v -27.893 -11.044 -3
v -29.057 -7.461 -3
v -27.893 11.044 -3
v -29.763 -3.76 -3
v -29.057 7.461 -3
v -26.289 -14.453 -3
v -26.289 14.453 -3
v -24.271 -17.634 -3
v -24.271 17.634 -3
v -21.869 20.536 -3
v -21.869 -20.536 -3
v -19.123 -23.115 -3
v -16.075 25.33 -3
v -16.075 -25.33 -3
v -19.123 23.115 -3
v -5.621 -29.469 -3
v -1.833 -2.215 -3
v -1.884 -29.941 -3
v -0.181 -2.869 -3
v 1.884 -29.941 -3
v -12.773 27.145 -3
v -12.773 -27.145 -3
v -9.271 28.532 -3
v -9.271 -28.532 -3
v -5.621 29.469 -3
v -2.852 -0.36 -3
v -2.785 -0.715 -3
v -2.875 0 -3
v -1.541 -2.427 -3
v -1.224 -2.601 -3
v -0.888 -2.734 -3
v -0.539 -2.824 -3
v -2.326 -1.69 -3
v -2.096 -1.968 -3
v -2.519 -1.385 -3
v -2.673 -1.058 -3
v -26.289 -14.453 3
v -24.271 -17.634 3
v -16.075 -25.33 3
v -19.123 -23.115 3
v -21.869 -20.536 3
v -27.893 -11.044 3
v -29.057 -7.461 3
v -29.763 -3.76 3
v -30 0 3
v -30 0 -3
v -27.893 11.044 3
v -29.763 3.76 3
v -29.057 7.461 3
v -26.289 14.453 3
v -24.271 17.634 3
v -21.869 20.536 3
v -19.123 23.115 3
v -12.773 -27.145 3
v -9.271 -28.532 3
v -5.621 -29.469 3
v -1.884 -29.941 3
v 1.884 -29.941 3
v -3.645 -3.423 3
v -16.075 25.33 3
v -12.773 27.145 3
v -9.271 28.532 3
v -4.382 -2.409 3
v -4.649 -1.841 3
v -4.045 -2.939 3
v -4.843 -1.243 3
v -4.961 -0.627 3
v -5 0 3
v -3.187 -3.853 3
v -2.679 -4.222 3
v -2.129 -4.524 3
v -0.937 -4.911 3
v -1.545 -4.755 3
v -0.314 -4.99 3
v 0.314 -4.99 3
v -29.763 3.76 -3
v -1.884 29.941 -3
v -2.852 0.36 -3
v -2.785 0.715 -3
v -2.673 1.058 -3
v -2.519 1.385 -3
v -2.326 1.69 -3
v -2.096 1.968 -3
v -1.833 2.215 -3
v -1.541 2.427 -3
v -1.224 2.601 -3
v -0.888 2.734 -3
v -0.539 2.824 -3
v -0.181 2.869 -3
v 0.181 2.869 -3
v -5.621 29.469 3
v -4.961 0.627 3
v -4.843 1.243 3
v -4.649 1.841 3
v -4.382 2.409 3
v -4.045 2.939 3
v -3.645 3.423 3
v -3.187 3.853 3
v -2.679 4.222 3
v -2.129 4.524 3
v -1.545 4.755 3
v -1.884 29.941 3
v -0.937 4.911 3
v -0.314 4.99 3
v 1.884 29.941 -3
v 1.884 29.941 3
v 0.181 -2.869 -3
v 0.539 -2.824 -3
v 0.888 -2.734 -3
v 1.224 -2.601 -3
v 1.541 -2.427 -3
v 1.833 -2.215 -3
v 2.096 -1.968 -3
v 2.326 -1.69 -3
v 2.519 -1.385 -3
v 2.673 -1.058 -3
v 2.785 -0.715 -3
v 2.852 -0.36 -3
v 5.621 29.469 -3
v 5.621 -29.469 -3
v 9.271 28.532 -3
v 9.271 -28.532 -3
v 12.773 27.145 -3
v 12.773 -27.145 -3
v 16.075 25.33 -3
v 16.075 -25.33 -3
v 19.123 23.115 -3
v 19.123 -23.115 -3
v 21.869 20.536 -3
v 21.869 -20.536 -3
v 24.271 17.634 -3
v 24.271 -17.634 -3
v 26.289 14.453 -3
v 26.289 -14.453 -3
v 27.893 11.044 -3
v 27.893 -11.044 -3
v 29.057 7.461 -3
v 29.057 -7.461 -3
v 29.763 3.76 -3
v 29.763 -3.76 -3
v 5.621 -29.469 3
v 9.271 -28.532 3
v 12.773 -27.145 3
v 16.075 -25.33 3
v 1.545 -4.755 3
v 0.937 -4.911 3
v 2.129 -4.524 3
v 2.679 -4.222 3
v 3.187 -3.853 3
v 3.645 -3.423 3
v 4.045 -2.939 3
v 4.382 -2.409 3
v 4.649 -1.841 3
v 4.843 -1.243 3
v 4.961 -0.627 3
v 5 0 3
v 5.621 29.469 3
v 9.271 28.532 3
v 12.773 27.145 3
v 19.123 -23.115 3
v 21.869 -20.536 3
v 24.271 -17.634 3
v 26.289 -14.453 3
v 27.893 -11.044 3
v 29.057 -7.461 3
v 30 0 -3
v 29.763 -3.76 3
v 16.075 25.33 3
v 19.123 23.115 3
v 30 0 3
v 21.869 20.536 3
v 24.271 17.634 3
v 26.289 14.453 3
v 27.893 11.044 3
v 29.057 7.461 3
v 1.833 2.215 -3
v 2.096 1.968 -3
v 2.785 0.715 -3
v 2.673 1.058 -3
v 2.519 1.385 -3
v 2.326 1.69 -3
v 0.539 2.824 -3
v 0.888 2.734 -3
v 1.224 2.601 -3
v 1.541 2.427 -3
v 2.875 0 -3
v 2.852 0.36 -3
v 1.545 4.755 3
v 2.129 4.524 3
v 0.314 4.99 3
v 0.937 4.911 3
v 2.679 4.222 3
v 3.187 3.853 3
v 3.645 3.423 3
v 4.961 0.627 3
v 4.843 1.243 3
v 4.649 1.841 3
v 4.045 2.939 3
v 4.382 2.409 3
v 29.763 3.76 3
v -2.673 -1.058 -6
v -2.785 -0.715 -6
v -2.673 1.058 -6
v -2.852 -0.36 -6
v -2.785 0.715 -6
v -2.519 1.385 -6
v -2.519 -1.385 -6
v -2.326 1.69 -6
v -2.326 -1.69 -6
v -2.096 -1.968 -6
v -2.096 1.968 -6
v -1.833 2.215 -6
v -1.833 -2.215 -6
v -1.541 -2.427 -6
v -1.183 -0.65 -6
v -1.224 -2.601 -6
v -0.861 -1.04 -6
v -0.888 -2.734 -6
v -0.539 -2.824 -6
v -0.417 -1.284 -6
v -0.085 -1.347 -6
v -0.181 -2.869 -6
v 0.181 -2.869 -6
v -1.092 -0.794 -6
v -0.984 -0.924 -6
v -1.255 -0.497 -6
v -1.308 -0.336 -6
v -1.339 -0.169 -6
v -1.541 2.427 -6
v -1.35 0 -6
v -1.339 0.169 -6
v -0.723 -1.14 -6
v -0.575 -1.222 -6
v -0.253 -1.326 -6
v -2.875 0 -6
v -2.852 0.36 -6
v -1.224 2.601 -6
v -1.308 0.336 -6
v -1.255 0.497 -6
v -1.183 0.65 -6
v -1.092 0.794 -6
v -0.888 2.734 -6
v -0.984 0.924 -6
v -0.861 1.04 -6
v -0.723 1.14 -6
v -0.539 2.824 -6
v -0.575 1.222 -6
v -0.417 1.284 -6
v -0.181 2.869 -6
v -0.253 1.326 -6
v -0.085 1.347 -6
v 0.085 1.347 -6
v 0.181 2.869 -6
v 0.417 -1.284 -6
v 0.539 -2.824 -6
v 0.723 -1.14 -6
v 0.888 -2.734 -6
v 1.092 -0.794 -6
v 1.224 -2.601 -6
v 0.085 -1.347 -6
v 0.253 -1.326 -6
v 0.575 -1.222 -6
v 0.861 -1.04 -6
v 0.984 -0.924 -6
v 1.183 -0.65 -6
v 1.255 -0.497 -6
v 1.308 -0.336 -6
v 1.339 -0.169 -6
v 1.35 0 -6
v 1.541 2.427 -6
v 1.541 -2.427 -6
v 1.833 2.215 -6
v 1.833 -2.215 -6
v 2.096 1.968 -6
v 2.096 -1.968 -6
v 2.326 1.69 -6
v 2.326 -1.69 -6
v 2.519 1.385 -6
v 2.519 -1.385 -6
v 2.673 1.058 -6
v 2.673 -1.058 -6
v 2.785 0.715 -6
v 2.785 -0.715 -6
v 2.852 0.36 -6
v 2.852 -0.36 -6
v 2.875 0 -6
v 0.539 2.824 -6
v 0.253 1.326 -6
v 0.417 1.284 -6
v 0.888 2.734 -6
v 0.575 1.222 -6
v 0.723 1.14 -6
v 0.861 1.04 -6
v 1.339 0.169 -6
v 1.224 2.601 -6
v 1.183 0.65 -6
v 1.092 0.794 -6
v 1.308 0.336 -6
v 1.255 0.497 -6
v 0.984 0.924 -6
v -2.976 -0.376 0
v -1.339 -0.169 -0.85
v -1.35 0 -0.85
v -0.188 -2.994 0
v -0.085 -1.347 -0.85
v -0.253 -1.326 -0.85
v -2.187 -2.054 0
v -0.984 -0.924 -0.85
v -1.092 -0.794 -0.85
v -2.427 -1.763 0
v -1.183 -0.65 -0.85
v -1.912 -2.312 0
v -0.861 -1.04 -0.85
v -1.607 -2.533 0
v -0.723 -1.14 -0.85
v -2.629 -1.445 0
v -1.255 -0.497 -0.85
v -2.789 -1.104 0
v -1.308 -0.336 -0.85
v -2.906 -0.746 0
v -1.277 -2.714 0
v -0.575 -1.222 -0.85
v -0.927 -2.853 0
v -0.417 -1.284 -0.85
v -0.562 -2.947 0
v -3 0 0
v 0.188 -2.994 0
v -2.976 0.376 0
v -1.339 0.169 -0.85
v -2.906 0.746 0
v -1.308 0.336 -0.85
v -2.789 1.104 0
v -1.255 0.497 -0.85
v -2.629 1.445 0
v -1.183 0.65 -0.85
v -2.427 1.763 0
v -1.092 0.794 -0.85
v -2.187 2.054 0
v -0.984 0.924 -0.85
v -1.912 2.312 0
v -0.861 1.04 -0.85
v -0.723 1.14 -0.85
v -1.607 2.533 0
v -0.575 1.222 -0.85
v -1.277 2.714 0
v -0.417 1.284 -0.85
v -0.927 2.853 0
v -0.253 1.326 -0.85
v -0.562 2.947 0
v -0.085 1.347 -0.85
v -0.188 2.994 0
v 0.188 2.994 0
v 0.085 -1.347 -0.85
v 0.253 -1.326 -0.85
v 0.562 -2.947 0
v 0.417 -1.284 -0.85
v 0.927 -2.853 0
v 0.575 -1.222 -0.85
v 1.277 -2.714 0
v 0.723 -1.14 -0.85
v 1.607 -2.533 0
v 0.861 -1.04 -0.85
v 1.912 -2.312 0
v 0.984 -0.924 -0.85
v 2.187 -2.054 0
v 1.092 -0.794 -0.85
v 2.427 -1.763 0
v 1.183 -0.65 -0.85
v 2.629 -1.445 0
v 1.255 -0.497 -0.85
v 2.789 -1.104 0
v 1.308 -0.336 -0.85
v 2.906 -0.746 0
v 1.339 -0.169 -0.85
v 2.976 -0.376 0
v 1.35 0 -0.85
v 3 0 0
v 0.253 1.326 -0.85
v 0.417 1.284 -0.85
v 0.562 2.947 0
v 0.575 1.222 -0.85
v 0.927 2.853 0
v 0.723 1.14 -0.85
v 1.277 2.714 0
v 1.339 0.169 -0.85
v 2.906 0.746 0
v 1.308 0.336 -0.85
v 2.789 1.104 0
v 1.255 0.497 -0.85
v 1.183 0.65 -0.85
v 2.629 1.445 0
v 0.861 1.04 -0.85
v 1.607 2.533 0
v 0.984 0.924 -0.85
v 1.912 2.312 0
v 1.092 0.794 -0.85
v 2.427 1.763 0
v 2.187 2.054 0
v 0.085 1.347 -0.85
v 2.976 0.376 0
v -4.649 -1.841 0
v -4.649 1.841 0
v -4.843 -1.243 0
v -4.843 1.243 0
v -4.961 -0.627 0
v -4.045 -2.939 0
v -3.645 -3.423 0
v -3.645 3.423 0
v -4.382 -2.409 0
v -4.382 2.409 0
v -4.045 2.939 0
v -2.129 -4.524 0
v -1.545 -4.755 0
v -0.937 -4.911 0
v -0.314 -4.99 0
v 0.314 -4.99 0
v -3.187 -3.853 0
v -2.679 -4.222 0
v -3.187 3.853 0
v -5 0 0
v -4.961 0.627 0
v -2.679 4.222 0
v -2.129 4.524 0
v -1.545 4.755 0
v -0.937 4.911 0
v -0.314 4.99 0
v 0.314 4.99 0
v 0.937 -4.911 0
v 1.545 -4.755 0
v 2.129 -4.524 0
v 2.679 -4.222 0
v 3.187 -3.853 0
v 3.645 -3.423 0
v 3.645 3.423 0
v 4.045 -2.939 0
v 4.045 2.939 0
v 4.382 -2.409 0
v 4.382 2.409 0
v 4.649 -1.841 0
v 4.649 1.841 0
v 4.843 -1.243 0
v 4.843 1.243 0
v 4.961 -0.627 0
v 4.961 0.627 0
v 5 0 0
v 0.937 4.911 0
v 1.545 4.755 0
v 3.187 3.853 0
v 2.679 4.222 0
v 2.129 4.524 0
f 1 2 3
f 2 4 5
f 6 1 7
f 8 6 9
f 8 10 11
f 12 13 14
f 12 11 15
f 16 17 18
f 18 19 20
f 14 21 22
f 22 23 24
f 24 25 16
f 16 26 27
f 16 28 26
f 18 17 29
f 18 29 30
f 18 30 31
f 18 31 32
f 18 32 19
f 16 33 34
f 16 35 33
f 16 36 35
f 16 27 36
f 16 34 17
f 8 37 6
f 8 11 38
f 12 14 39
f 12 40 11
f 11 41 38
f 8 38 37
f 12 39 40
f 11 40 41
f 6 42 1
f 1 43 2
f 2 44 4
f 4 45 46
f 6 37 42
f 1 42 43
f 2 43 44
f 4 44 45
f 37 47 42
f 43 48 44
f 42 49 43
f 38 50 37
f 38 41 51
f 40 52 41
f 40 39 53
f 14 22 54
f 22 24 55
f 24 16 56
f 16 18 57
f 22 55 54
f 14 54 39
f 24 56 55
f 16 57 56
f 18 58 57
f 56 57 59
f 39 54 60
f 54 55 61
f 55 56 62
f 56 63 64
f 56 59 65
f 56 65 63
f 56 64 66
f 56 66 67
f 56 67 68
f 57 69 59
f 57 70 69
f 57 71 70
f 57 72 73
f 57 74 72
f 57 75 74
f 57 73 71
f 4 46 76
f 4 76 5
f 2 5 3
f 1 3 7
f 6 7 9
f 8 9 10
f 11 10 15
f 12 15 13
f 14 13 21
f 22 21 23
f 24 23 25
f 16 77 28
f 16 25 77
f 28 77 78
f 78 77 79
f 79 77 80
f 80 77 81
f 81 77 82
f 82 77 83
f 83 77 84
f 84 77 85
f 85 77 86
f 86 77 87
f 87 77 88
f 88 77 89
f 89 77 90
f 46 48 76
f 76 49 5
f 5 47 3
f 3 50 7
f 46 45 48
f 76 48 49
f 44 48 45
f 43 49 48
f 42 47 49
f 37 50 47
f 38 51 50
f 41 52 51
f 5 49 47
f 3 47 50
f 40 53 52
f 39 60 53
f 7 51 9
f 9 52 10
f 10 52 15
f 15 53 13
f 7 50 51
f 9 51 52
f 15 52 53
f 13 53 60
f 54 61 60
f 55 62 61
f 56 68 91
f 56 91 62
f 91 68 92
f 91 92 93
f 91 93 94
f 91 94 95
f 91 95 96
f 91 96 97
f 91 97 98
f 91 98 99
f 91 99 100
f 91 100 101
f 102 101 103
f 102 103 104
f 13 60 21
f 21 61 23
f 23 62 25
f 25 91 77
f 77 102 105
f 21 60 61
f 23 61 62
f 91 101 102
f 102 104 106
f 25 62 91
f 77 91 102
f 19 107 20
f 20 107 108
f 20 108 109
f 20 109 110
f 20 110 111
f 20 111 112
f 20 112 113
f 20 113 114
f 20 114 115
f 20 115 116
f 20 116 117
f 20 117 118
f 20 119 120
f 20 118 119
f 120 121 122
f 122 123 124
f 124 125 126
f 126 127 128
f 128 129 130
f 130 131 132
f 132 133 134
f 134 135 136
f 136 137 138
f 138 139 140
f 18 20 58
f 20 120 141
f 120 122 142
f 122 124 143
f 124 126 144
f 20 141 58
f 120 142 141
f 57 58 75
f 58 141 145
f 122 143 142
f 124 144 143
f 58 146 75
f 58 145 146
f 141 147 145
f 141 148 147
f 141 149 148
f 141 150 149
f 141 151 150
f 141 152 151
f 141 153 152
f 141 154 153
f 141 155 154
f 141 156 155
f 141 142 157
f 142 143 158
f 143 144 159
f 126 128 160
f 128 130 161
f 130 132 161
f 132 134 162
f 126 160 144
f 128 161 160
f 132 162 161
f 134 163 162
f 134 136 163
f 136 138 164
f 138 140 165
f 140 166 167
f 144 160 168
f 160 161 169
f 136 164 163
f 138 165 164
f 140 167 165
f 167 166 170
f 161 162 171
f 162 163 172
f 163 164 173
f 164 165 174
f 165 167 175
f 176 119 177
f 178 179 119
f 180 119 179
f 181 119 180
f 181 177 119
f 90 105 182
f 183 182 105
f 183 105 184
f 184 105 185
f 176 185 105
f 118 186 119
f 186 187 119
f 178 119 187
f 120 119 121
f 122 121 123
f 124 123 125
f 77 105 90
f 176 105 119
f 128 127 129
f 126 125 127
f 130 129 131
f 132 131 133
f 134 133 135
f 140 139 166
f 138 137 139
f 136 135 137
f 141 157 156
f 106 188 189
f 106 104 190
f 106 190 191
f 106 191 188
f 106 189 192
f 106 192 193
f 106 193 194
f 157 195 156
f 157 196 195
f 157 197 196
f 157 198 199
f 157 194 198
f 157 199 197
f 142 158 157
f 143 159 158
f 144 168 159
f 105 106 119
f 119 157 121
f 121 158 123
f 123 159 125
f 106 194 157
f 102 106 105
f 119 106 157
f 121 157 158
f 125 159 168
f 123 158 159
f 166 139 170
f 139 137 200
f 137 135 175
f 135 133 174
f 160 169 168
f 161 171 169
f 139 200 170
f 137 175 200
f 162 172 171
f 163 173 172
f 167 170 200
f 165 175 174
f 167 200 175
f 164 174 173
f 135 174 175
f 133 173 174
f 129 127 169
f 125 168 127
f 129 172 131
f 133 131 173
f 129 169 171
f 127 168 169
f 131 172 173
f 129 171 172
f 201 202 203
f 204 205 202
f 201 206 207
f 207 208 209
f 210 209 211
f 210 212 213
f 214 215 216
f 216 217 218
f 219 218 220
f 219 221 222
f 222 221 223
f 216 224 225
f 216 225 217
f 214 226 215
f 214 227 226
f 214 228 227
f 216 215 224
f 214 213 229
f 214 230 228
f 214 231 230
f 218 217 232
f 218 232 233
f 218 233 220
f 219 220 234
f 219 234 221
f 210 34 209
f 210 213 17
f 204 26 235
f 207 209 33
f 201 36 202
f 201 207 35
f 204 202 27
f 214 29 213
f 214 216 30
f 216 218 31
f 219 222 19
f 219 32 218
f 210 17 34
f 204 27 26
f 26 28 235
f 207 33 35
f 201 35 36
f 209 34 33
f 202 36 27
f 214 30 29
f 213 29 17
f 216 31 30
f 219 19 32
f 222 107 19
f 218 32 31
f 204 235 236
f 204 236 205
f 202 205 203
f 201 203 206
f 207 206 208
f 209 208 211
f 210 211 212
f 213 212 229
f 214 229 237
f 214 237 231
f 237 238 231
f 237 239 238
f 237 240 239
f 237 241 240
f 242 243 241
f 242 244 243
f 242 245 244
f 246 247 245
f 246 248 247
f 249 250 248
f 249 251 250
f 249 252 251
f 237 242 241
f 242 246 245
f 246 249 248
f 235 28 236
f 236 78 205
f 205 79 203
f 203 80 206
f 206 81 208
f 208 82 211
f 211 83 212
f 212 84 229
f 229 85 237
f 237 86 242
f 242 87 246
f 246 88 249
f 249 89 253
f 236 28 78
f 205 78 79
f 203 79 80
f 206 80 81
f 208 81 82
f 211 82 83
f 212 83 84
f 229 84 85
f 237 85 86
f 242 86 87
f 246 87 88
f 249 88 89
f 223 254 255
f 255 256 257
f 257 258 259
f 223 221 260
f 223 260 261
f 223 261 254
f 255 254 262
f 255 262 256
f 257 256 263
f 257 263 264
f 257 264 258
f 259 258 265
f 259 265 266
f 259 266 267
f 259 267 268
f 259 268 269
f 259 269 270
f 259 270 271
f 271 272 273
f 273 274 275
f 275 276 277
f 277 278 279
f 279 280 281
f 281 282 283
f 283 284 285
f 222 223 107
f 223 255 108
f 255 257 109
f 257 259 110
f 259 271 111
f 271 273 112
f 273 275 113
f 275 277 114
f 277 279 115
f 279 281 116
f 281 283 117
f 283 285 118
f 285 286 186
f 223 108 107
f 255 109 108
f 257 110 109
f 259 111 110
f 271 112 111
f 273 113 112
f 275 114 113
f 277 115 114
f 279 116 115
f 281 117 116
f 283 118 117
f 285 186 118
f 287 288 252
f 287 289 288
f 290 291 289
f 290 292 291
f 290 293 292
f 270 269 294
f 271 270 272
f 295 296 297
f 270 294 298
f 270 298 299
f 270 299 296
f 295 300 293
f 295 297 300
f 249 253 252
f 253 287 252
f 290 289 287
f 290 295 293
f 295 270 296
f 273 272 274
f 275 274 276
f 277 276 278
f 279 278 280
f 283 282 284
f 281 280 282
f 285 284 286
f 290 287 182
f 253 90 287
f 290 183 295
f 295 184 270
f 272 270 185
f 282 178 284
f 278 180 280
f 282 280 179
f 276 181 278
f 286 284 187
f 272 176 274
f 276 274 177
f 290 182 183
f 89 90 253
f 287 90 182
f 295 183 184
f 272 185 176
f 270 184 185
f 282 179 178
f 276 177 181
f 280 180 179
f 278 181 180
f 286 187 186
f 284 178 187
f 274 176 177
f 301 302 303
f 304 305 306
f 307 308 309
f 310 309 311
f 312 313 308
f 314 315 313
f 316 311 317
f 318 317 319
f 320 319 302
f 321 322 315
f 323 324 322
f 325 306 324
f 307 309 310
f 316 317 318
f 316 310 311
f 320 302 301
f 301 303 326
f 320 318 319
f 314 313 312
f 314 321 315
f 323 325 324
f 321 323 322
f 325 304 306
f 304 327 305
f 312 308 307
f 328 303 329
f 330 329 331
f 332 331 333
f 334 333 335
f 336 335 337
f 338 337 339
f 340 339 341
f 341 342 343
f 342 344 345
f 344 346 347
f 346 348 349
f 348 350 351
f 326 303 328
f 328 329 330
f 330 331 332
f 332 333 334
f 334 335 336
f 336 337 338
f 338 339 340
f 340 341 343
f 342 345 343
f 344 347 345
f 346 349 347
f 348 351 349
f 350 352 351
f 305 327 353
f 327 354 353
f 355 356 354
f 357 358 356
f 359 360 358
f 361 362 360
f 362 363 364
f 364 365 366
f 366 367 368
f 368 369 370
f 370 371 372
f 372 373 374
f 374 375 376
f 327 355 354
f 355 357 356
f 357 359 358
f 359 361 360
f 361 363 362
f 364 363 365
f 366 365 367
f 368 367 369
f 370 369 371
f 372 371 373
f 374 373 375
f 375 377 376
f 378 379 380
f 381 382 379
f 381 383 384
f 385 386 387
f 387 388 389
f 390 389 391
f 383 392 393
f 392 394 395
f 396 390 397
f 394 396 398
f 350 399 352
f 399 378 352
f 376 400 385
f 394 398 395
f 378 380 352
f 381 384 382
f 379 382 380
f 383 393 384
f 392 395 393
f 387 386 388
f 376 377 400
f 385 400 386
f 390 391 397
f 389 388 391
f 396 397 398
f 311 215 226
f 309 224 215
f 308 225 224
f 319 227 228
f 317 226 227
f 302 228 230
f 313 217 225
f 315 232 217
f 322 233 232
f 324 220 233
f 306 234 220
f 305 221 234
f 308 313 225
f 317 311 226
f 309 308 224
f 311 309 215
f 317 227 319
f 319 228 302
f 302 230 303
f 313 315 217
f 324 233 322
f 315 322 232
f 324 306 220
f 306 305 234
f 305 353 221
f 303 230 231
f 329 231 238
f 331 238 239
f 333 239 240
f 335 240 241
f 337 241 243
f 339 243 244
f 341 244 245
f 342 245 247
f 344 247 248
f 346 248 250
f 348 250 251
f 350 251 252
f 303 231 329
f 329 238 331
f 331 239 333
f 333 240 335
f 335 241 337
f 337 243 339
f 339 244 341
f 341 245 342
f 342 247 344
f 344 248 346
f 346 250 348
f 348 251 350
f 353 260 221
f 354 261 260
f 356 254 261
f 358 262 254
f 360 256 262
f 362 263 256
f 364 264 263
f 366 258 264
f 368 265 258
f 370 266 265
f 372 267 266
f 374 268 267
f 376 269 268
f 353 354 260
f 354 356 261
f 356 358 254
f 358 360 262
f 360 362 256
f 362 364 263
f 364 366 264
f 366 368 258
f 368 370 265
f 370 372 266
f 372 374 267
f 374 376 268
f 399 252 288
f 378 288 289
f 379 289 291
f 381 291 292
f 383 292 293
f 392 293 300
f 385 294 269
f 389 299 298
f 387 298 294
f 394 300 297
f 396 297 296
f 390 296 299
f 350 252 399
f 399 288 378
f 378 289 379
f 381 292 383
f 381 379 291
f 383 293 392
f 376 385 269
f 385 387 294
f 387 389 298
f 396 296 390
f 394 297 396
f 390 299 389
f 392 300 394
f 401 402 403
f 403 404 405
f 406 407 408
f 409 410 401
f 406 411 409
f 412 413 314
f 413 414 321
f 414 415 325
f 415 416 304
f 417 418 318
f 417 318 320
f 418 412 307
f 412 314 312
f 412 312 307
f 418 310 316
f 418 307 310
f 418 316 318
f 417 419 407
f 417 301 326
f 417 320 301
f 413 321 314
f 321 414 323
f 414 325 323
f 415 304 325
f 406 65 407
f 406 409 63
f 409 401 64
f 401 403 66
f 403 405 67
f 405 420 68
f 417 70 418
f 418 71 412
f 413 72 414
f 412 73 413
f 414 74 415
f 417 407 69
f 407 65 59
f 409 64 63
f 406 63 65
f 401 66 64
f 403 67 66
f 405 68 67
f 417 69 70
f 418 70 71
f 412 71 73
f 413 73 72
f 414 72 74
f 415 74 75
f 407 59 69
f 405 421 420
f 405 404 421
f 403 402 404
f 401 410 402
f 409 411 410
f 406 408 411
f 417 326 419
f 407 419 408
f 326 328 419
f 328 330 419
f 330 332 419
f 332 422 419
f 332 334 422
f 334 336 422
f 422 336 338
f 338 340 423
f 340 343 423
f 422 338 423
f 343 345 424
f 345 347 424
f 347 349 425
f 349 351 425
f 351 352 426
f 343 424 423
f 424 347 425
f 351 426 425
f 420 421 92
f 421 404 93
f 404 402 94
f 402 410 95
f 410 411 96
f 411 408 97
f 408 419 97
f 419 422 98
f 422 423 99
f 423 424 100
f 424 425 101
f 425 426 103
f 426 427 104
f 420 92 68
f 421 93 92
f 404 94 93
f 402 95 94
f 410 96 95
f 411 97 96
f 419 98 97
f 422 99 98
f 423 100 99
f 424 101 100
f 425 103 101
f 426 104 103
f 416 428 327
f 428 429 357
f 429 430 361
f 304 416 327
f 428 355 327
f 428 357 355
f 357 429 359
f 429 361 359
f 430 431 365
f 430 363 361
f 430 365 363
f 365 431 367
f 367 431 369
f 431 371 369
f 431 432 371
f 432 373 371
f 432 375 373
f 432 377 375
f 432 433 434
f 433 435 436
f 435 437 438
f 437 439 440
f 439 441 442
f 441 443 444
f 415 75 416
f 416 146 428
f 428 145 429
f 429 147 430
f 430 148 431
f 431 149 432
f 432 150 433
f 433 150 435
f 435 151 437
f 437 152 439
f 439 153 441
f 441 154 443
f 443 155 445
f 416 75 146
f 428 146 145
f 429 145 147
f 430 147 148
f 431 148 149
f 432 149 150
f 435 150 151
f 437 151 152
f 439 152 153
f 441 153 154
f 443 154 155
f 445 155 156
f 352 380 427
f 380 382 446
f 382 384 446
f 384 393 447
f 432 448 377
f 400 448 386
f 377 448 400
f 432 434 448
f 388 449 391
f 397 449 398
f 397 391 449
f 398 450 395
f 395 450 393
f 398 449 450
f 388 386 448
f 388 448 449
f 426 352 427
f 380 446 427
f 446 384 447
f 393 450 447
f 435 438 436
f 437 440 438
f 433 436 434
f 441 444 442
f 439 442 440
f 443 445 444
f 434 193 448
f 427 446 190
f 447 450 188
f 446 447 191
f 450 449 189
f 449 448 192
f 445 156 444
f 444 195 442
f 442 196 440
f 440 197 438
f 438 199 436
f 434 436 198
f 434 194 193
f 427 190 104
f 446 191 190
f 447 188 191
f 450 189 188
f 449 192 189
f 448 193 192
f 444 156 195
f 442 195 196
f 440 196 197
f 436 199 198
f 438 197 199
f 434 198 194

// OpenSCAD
$fn = 50;

difference() {
	union() {
		translate(v = [0, 0, -3.0]) {
			cylinder(h = 6, r = 30.0);
		}
		#translate(v = [0, 0, -6.0]) {
			cylinder(h = 6, r = 2.875);
		}
	}
	union() {
		translate(v = [0, 0, 0]) {
			rotate(a = [0, 0, 0]) {
				difference() {
					union() {
						translate(v = [0, 0, -6.0]) {
							cylinder(h = 6, r = 1.0);
						}
						translate(v = [0, 0, -0.85]) {
							cylinder(h = 0.85, r1 = 1.35, r2 = 3.0);
						}
						translate(v = [0, 0, -6.0]) {
							cylinder(h = 6, r = 1.35);
						}
						translate(v = [0, 0, -6.0]) {
							cylinder(h = 6, r = 1.0);
						}
					}
					union();
				}
			}
		}
		#cylinder(h = 3, r = 5.0);
	}
}
